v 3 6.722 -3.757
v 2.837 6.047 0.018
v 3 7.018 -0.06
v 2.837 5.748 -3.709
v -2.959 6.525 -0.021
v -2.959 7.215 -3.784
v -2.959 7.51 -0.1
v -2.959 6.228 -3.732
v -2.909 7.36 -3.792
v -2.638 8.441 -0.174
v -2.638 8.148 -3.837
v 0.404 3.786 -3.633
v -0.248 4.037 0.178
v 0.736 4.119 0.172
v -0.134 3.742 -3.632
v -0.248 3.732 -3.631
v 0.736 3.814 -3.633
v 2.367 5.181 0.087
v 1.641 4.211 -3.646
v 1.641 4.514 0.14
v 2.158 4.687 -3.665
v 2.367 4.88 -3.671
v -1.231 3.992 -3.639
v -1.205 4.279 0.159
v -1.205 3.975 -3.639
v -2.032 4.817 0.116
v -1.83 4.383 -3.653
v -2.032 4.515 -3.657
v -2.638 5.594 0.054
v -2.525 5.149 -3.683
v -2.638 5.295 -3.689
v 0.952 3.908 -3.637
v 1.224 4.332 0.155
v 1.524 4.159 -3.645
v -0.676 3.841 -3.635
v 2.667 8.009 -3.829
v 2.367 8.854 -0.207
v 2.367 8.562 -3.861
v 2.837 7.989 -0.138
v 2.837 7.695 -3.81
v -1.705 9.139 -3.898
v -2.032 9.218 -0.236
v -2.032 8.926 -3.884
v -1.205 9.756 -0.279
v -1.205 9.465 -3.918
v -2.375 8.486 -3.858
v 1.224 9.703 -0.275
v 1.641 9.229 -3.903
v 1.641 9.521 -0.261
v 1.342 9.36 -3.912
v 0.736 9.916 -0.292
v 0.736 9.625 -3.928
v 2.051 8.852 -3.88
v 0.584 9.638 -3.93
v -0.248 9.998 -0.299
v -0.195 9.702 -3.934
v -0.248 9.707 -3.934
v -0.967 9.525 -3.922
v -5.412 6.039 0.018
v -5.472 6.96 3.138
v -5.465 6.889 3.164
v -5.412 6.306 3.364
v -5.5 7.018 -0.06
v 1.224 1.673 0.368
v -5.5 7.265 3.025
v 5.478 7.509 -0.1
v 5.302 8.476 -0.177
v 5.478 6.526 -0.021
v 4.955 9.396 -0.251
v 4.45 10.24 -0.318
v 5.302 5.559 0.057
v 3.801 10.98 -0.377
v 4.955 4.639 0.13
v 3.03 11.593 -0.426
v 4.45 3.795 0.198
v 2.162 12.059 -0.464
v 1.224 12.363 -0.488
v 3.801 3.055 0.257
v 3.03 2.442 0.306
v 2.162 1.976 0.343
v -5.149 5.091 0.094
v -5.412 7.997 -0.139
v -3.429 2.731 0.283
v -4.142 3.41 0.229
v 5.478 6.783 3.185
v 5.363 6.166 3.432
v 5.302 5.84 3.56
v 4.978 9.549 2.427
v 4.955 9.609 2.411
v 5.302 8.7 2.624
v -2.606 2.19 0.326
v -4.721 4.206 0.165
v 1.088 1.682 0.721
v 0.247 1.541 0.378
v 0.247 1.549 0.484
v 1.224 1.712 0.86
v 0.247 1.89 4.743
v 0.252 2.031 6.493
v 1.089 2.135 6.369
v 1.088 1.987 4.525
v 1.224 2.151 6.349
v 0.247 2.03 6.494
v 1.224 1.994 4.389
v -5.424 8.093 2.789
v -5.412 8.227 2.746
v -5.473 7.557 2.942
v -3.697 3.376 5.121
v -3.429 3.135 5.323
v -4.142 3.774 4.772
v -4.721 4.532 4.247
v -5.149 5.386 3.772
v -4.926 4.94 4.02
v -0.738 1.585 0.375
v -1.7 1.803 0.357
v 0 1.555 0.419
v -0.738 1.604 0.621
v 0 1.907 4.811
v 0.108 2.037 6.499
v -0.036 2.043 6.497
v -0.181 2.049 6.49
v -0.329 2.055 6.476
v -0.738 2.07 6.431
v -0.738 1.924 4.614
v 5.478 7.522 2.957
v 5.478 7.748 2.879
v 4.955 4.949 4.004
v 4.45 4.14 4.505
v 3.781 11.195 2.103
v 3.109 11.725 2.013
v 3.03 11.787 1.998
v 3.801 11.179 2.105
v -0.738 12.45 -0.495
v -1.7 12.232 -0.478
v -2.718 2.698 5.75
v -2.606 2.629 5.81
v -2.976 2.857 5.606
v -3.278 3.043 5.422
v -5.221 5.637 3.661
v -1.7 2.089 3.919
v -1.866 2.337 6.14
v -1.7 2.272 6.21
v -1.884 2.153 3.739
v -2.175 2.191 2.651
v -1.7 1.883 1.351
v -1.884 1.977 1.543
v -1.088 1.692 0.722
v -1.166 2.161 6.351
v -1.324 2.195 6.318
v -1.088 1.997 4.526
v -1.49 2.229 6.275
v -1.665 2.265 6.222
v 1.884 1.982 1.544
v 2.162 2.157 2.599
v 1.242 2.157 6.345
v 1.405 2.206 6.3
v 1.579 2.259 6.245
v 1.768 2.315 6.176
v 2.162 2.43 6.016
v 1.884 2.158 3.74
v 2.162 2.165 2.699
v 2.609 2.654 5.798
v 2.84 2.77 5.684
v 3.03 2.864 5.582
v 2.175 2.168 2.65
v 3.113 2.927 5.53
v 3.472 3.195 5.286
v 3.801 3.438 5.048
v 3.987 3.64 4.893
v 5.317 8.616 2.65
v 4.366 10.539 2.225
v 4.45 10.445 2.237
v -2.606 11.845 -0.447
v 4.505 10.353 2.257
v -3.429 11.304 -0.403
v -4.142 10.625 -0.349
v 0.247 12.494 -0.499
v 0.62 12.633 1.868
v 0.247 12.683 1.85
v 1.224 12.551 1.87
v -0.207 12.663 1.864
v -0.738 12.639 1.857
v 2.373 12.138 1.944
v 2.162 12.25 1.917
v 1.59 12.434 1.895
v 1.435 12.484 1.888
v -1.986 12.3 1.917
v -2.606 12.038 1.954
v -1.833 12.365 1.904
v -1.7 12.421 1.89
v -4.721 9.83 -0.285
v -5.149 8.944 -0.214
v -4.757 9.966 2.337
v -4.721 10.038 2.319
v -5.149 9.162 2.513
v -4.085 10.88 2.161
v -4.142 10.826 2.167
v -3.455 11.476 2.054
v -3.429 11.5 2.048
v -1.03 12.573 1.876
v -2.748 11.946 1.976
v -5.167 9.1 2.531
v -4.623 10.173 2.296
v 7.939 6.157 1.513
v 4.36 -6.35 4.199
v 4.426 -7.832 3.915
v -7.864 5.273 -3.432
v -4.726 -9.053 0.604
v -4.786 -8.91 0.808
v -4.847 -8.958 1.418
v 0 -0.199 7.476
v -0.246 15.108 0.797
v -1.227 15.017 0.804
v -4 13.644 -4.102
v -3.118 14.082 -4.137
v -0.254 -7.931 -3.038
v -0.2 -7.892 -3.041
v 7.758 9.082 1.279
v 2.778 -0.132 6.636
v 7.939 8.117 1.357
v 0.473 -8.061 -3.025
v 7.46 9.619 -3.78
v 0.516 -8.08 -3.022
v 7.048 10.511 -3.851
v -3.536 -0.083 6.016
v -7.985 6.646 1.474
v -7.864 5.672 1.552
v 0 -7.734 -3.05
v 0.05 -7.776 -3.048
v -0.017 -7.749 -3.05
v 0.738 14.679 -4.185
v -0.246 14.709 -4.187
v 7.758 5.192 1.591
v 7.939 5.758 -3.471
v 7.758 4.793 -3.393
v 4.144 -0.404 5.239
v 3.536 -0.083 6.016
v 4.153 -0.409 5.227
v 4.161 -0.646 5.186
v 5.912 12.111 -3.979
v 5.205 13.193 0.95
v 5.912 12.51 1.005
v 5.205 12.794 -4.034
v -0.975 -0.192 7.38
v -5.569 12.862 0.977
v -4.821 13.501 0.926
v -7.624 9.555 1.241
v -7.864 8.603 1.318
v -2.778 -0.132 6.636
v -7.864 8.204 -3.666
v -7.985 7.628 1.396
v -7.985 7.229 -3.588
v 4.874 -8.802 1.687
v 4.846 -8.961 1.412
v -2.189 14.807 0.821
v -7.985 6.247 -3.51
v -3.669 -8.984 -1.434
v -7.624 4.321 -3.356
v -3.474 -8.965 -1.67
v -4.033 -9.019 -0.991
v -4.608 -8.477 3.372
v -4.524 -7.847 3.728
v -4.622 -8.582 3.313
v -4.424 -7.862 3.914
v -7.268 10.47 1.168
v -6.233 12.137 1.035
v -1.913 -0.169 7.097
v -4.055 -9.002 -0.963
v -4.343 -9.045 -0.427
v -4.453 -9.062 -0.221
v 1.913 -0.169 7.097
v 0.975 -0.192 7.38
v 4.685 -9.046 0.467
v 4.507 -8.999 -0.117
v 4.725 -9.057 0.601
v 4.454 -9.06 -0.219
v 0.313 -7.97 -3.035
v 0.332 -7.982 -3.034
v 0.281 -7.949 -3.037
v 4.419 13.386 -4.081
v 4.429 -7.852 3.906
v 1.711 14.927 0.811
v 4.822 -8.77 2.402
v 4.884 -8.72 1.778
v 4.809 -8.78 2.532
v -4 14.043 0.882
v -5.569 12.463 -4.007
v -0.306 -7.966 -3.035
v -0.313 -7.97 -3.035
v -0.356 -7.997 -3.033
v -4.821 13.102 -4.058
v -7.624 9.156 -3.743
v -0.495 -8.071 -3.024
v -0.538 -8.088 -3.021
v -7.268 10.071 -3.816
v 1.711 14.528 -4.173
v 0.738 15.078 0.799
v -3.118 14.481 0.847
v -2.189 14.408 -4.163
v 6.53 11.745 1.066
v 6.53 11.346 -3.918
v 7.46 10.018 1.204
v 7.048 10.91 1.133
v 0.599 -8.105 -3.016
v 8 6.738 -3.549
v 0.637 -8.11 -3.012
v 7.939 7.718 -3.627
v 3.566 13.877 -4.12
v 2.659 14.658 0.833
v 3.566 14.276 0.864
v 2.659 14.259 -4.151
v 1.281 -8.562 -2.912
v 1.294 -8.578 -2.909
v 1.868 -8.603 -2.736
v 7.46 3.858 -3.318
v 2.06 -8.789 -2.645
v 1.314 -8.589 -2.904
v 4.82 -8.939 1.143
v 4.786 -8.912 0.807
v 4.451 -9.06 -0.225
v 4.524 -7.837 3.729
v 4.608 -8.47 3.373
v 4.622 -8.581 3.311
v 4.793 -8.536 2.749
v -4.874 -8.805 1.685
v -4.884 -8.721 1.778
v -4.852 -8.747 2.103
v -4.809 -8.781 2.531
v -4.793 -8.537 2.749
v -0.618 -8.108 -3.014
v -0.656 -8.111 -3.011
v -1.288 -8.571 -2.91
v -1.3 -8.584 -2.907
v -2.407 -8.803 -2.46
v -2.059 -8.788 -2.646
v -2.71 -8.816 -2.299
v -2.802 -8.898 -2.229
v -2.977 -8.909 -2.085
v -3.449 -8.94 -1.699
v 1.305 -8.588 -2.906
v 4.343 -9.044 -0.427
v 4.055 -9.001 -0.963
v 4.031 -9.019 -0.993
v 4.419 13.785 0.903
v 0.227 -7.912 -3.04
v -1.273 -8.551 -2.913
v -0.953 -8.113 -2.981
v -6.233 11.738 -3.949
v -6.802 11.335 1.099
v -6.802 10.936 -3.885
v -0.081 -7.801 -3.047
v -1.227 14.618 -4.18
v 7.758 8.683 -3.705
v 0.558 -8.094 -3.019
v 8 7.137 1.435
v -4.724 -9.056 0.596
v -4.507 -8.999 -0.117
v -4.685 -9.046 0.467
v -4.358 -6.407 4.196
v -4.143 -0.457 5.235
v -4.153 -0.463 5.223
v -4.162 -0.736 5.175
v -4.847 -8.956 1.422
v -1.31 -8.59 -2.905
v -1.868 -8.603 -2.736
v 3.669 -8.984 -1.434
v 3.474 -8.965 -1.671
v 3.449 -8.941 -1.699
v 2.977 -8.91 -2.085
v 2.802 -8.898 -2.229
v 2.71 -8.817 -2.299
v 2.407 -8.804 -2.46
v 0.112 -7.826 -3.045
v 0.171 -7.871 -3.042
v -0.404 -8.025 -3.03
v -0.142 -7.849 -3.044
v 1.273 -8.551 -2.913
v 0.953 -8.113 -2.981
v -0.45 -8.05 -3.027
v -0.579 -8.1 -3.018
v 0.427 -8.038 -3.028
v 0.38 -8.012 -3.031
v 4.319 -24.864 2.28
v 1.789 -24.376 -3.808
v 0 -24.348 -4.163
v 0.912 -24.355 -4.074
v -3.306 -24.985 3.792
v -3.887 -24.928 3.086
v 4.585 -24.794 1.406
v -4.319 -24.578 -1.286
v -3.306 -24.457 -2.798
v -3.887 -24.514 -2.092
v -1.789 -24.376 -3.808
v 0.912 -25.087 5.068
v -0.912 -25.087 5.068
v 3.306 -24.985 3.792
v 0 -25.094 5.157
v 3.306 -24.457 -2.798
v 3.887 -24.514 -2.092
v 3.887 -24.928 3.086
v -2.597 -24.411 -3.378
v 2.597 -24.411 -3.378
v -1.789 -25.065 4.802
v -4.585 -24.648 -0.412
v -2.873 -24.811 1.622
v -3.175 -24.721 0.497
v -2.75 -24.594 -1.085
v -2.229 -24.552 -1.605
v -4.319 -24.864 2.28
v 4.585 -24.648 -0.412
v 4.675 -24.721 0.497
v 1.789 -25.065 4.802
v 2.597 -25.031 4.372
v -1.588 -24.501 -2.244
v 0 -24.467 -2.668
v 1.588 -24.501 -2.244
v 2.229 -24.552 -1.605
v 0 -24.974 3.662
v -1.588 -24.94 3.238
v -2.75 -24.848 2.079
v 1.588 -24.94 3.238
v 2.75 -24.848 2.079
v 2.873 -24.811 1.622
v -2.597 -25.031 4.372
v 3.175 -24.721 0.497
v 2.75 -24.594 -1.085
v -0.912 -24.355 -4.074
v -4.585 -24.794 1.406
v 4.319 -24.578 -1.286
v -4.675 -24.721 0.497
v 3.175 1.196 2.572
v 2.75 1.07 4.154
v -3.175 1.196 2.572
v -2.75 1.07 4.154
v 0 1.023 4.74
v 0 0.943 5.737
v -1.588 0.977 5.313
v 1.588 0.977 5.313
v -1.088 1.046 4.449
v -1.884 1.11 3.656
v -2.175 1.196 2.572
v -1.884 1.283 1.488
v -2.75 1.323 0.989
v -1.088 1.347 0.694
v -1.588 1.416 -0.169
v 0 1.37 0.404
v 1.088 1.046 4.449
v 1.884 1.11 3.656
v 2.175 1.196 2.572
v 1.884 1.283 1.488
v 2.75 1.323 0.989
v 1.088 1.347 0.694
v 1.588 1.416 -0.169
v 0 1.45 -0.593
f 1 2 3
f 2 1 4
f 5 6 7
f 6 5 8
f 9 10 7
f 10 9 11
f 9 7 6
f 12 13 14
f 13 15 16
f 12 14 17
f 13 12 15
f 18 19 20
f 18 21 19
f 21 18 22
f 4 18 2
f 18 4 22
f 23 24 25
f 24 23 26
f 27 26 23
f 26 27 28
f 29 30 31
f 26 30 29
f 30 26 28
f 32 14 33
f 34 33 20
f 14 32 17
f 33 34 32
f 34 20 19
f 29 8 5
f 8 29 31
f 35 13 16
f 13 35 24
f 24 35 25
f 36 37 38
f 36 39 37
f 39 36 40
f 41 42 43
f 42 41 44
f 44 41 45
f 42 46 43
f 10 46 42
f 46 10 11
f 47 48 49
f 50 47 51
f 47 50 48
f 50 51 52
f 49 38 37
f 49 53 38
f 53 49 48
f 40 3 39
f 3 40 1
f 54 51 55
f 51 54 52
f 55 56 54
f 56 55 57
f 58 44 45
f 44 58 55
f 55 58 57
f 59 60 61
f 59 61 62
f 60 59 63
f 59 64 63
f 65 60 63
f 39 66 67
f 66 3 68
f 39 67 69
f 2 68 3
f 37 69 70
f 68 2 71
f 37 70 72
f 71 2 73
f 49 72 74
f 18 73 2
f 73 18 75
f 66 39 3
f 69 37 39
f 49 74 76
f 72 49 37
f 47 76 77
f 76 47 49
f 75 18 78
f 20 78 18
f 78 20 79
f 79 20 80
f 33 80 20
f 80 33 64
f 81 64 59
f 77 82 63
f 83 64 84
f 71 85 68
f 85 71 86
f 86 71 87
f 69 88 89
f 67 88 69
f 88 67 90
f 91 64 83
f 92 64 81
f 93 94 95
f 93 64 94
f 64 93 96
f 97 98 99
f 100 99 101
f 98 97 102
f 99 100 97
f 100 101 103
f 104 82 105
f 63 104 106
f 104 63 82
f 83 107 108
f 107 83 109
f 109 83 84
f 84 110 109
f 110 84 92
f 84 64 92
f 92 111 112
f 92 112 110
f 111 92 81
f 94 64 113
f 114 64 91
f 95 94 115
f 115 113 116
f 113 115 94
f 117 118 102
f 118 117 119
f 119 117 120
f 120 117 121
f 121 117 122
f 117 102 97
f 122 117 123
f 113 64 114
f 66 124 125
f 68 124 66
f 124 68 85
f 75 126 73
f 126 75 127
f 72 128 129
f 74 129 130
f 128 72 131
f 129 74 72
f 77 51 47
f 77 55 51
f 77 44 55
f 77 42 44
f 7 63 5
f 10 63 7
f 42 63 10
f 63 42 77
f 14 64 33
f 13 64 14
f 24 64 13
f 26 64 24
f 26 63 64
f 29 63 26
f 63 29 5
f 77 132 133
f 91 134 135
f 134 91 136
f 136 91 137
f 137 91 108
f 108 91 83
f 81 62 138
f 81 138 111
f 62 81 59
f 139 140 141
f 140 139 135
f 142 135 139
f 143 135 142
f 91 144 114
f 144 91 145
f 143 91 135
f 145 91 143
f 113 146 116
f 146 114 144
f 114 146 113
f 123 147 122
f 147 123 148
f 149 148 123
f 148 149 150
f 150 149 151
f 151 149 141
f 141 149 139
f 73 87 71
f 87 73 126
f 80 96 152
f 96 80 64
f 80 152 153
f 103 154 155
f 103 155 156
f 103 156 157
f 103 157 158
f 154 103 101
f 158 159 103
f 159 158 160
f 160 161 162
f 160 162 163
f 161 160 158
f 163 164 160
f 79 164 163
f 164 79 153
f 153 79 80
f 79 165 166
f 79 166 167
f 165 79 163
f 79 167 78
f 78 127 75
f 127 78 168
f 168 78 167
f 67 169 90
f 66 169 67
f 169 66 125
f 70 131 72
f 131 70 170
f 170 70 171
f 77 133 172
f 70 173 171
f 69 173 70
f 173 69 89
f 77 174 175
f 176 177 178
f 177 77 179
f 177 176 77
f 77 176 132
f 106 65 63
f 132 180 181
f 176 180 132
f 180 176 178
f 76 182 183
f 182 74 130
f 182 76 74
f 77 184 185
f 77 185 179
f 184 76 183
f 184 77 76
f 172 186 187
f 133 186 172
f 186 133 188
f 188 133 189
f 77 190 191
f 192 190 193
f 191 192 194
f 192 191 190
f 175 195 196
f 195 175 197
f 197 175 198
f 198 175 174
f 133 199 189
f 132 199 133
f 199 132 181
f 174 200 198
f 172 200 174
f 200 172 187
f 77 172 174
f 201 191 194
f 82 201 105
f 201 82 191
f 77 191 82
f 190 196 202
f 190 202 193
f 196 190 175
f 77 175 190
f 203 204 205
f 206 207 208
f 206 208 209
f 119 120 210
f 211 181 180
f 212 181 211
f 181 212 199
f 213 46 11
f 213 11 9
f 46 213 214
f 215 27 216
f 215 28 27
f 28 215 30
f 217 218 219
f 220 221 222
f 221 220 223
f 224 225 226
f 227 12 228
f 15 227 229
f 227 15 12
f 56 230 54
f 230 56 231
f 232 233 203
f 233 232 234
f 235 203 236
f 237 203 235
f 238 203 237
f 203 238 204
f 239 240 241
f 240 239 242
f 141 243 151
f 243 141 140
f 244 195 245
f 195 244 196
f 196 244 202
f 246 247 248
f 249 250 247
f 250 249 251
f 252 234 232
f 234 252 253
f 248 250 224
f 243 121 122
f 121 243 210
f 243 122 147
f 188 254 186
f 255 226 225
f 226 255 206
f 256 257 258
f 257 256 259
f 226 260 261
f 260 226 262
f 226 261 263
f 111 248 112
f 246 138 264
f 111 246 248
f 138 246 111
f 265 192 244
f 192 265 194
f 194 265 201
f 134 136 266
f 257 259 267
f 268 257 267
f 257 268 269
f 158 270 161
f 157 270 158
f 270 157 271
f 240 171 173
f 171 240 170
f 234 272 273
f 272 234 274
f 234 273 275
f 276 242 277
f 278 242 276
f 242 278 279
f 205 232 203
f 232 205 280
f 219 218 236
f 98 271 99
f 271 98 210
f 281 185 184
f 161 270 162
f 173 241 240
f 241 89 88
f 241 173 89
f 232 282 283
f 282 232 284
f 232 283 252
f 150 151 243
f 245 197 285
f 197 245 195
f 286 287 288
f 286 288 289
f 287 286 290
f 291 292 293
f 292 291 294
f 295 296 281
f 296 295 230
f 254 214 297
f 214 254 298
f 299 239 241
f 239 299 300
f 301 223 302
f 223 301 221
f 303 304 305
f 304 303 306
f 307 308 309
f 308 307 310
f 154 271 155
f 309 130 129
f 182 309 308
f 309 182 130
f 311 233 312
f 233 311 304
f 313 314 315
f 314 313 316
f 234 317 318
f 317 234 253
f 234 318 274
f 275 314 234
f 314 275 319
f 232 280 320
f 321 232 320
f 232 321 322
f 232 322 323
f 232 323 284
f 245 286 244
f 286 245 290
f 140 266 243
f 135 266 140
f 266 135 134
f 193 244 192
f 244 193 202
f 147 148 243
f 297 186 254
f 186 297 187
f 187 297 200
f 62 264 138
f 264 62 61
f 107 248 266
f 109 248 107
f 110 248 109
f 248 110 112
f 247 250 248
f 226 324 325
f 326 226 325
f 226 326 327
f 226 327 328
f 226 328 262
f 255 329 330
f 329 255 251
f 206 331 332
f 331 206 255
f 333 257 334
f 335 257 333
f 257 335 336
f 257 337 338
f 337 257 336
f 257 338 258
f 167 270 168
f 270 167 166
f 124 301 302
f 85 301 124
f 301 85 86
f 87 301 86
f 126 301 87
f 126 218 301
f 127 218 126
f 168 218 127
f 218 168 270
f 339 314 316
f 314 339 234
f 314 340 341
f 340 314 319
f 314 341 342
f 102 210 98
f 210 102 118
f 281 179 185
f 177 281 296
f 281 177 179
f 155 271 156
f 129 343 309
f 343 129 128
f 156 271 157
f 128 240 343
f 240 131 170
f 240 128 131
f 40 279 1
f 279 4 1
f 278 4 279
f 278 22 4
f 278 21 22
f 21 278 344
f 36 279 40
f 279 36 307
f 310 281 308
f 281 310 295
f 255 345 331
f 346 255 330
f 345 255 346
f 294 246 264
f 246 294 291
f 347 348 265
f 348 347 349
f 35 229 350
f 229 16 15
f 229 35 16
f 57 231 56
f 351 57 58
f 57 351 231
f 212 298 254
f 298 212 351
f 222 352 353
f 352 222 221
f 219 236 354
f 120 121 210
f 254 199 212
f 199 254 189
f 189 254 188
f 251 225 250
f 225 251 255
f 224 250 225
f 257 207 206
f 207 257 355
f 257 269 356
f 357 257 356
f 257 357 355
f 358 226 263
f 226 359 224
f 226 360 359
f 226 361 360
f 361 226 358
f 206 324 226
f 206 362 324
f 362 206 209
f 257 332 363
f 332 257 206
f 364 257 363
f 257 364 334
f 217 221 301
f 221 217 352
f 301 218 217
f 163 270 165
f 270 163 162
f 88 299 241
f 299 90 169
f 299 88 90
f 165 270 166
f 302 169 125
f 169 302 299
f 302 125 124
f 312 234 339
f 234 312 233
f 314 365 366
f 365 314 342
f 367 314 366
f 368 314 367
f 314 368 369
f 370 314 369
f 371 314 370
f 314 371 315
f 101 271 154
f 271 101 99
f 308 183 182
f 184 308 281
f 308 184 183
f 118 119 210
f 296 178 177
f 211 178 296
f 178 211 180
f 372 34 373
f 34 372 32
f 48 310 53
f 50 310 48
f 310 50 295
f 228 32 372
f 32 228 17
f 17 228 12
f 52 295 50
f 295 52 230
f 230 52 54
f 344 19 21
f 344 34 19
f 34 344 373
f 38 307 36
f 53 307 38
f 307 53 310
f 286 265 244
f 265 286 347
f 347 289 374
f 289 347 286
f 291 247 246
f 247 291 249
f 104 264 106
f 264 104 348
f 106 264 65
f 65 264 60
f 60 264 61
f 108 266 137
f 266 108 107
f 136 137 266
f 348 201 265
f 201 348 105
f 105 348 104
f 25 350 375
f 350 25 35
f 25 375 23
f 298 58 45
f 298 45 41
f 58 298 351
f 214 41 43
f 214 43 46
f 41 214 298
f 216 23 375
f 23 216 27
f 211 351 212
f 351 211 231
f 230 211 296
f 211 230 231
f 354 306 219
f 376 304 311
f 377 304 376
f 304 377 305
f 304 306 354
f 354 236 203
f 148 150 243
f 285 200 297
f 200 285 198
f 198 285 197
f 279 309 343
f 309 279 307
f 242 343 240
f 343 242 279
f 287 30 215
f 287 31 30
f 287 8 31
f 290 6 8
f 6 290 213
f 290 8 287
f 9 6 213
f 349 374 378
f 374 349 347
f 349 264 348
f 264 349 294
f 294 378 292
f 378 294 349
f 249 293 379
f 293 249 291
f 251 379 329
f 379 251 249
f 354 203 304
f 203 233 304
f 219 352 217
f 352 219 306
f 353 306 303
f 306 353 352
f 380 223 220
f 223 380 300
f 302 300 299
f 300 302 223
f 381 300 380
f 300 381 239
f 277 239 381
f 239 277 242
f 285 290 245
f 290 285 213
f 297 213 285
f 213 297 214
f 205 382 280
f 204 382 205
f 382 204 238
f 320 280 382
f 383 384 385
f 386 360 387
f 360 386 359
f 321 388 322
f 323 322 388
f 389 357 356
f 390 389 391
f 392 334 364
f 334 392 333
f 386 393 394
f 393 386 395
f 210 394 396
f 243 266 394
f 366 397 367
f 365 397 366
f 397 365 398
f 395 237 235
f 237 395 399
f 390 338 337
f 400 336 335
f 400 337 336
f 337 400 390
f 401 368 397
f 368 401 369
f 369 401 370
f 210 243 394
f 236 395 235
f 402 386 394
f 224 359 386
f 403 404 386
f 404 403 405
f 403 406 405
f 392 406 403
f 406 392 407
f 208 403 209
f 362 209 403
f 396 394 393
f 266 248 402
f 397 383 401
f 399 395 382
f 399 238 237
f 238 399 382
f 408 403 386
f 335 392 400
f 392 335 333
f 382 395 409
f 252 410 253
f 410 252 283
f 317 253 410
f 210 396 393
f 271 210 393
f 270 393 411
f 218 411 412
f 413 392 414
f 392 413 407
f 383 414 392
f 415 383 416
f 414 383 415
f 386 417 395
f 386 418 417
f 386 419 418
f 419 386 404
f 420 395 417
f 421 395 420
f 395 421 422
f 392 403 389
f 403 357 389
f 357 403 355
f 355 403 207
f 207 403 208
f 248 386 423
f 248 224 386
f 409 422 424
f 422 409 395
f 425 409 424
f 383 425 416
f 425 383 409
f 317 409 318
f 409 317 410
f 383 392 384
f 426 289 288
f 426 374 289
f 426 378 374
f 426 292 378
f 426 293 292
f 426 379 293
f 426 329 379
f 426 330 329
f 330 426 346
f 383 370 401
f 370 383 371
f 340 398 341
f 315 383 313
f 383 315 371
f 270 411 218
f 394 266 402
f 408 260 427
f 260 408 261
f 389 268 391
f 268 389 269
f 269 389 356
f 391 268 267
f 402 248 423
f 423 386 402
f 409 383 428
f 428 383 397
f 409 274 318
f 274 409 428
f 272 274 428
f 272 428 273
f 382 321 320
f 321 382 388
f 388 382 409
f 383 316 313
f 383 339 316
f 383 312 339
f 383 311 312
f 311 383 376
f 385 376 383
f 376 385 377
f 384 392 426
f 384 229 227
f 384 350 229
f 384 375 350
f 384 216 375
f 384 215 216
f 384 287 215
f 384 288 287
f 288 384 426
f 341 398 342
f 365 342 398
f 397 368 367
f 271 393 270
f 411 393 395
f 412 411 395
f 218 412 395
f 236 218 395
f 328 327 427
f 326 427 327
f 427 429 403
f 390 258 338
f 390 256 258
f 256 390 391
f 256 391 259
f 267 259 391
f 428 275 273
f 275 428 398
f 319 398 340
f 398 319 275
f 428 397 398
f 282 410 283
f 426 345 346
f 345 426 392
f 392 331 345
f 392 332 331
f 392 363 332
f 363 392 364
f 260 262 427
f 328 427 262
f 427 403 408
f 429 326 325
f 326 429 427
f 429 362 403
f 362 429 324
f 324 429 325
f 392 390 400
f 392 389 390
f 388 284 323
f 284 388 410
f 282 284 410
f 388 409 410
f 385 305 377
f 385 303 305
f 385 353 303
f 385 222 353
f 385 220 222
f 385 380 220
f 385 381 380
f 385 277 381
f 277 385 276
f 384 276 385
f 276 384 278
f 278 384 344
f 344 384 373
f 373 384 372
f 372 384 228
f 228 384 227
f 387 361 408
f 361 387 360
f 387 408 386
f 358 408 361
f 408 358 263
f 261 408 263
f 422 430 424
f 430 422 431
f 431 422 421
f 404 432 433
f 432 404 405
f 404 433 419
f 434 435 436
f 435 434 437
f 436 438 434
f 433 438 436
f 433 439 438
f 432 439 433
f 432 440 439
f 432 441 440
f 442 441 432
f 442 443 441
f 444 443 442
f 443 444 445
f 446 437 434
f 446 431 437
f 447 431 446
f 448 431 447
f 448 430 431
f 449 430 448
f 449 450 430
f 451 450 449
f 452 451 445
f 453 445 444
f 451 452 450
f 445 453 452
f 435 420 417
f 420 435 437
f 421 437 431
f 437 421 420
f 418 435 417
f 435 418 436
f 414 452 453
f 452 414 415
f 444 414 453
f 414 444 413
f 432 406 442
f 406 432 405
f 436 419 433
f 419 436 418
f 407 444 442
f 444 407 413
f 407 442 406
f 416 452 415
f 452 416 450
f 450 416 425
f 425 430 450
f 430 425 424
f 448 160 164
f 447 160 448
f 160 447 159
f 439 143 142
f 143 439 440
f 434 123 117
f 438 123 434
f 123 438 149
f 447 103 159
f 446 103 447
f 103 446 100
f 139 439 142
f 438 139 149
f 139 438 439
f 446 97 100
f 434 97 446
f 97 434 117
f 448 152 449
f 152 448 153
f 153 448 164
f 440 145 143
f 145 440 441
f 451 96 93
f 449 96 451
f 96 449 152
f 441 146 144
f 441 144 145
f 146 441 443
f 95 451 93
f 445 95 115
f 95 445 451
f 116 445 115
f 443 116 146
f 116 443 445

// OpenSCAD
stayAngle = asin(0.5*(165 - 60)/330); // rear
//stayAngle = 0; // front*/
$fs = 1;
$fa = 6;

len = 25;
wid = 10;
//stayD = 4.7;
stayD = 25.4/4;
offset = -tan(stayAngle) * len;
smoffset = sin(stayAngle) * wid;
module squaredCircle(len, rot=[0,0,0], $fn=12) {
    hull() {
        rotate(rot) cylinder(d=wid/cos(180/$fn), h=len, center=false, $fn=$fn);
    }
}
module stayThru(l = len + 5, center=false, stayAngle = stayAngle) {
    translate([0,2.5,0]) rotate([stayAngle,0,0])  {
        translate([0, 0, -1])
        cylinder(d=stayD, h=l, center=center, $fn=12);

        translate([0, 0, -4])
        cylinder(d=stayD - 2, h=l + 2, center=center, $fn=12);
    }
}
module shank(len, stayAngle = stayAngle) {
    translate([0,2.5,0]) rotate([stayAngle,0,0]) {
        rotate([0,0,180/8]) cylinder(d1=wid, d2=(stayD + 3), h=len, center=false);

    }
}

rotate([90 - stayAngle/2,0,0])
    difference() {
        union() {
            shank(len);

            translate([0,2,-2]) {
                difference() {
                    hull() {
                        translate([0,-2,2]) shank(10);
                        translate([0,-wid/4,-wid/2]) rotate([90,0,0]) cylinder(d=wid+6, h=wid/2, center=true);
                    }
                    translate([0,-wid/4,-wid/2]) rotate([90,0,0]) {
                        cylinder(d=6, h=25, center=true);

                        translate([0,0,-1])
                        rotate([0,180,0]) cylinder(d=11, h=wid, center=false);
                    }
                }
            }
        }
        stayThru();
    }
